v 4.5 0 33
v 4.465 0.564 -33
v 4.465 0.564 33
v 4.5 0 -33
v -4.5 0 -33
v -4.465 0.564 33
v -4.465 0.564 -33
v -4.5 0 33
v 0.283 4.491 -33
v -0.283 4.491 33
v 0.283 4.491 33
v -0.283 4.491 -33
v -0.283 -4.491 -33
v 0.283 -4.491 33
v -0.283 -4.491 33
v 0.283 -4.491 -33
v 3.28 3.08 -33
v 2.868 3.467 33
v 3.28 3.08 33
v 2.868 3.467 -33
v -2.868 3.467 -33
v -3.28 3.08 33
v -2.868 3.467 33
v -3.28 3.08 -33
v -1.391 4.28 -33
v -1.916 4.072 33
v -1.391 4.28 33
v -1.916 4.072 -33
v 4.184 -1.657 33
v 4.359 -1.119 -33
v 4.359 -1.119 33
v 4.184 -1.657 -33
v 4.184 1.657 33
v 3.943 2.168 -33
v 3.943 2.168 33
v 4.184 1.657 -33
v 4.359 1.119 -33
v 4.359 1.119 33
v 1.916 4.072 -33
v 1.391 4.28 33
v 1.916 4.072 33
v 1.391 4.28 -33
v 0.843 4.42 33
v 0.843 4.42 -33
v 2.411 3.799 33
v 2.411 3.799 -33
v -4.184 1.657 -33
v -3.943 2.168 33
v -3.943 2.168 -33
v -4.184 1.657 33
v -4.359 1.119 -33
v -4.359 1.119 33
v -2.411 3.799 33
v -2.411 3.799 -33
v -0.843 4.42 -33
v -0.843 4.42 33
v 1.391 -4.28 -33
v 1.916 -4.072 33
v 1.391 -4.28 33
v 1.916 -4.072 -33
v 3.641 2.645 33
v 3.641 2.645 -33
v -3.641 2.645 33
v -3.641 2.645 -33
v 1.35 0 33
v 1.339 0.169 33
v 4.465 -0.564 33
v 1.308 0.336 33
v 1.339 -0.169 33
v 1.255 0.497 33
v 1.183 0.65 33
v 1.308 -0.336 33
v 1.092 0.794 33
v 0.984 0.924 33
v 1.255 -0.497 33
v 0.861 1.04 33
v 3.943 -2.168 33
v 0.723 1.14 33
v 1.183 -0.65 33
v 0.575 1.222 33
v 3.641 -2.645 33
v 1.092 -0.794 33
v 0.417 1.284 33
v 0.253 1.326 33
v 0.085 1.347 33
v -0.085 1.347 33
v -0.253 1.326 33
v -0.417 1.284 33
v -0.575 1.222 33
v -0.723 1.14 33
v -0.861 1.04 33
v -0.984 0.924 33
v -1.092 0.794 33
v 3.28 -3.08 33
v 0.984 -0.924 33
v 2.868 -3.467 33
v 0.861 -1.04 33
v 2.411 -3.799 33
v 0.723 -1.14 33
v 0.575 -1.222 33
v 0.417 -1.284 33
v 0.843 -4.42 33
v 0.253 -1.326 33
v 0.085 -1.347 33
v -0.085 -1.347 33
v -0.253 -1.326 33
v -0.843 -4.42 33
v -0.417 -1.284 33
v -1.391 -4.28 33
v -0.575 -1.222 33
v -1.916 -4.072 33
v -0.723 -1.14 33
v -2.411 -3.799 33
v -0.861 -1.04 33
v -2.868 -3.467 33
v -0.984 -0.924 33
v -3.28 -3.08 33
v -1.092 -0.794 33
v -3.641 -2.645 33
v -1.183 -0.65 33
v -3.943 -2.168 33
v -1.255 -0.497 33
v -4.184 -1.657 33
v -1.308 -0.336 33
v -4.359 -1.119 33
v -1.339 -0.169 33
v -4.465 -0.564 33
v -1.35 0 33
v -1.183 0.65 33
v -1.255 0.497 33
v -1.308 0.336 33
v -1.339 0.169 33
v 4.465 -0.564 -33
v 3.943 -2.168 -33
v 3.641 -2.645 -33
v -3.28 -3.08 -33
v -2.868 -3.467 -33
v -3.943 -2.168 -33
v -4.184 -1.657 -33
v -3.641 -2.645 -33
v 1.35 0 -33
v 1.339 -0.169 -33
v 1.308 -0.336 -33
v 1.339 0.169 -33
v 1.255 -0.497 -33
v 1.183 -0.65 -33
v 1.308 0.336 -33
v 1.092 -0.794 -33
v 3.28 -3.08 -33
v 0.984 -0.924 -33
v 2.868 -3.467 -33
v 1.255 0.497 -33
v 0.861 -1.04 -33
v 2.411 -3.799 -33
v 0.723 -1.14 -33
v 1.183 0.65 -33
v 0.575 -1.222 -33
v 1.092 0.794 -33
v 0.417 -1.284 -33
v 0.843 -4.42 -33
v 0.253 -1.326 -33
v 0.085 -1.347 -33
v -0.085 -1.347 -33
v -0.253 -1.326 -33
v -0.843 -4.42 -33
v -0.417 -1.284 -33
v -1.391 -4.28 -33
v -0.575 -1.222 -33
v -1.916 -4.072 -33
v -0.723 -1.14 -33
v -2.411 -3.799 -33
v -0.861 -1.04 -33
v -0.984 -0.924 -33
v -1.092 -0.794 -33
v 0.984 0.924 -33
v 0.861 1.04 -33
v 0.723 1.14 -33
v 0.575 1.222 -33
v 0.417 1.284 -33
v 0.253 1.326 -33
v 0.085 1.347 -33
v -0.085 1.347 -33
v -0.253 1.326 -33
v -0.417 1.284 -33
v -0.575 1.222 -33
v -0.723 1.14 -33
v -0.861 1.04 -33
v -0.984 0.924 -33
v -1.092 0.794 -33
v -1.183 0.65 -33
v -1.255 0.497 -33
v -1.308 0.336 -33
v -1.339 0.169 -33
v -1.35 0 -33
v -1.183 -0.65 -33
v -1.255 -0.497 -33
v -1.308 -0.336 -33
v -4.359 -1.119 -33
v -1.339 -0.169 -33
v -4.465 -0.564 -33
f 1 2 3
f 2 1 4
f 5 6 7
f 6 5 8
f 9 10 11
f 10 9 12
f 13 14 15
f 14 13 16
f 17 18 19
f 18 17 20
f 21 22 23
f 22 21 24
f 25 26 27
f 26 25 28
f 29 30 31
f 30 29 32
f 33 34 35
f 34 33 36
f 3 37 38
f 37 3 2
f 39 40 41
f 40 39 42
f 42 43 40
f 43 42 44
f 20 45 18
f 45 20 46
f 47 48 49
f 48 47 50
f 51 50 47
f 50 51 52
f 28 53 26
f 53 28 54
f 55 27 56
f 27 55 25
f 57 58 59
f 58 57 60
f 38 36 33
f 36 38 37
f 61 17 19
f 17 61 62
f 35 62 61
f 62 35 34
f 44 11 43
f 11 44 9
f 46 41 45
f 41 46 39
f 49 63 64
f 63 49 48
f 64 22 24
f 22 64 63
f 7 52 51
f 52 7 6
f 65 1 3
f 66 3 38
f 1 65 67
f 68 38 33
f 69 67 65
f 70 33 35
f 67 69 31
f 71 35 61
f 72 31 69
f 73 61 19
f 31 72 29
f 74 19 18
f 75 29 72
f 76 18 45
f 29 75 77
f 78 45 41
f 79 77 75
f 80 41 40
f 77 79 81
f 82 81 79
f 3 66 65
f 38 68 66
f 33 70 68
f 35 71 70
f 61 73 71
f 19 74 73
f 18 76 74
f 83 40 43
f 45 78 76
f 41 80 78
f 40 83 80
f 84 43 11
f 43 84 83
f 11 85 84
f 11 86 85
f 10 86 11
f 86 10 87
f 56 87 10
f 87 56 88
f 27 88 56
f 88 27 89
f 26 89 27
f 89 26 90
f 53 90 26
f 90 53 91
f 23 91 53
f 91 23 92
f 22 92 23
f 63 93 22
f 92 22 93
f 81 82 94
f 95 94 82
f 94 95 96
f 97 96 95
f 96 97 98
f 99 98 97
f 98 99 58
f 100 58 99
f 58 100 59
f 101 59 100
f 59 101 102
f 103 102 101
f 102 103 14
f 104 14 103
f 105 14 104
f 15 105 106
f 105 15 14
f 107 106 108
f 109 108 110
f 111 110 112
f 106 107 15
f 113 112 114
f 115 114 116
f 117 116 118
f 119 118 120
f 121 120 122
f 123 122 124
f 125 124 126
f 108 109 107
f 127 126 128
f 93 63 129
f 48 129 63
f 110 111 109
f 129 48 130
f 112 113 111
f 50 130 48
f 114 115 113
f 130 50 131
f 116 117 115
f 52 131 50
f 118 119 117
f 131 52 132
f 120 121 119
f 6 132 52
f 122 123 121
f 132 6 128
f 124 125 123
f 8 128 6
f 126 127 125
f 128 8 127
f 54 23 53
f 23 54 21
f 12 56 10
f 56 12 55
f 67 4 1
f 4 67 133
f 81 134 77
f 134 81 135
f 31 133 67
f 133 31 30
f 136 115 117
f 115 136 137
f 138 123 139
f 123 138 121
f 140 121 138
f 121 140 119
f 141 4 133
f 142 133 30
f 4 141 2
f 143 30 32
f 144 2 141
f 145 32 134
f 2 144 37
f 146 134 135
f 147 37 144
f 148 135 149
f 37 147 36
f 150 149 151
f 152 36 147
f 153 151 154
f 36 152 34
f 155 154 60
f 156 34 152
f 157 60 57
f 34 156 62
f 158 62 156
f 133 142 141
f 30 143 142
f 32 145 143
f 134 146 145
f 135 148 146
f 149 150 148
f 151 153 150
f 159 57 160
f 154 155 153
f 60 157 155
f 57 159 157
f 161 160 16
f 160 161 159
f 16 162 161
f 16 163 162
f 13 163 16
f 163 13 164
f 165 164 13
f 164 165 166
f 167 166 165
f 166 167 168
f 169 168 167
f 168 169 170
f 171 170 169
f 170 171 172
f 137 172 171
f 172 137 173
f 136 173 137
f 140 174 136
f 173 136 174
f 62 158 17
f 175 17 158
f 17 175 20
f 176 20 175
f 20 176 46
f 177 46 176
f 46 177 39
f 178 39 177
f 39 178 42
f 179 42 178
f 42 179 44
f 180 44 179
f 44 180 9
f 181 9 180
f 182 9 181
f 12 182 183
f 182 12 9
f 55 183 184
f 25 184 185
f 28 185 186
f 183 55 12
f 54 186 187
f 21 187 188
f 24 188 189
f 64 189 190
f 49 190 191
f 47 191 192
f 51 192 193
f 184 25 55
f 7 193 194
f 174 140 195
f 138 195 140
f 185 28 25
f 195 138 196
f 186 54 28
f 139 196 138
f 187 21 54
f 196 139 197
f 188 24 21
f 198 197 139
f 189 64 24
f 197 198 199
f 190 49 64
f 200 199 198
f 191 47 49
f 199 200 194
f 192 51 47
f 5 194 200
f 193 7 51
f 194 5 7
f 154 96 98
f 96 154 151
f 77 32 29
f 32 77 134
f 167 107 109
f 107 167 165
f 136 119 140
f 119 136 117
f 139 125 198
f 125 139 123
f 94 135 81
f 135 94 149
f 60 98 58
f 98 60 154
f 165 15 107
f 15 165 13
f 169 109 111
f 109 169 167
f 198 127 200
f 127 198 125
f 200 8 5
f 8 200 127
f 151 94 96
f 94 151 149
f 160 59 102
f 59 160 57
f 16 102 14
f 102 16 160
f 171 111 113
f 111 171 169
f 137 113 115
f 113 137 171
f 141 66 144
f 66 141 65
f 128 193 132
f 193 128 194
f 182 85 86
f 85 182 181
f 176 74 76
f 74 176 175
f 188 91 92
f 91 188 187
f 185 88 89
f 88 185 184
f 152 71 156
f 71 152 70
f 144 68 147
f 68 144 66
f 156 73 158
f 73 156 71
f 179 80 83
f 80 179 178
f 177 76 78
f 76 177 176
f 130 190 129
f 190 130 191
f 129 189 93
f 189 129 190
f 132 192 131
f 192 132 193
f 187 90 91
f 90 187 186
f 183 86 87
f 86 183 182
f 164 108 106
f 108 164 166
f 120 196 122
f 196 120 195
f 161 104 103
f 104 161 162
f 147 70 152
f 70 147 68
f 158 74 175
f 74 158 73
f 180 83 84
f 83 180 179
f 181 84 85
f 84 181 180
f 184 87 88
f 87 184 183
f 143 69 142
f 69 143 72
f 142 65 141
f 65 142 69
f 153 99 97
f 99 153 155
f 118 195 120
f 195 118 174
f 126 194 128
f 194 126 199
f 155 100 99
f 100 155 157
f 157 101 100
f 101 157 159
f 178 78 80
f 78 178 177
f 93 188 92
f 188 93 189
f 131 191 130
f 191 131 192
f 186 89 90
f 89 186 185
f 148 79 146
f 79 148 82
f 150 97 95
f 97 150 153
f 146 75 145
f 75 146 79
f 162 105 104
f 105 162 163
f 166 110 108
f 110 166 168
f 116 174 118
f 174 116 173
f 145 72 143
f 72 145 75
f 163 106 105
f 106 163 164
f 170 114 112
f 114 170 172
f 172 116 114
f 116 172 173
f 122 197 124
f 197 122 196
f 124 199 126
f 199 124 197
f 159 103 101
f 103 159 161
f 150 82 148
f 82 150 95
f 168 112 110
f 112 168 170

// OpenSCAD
$fn = 50;


difference() {
	union() {
		translate(v = [0, 0, -33.0000000000]) {
			cylinder(h = 66, r = 4.5000000000);
		}
	}
	union() {
		translate(v = [0, 0, -100.0000000000]) {
			cylinder(h = 200, r = 1.3500000000);
		}
	}
}
